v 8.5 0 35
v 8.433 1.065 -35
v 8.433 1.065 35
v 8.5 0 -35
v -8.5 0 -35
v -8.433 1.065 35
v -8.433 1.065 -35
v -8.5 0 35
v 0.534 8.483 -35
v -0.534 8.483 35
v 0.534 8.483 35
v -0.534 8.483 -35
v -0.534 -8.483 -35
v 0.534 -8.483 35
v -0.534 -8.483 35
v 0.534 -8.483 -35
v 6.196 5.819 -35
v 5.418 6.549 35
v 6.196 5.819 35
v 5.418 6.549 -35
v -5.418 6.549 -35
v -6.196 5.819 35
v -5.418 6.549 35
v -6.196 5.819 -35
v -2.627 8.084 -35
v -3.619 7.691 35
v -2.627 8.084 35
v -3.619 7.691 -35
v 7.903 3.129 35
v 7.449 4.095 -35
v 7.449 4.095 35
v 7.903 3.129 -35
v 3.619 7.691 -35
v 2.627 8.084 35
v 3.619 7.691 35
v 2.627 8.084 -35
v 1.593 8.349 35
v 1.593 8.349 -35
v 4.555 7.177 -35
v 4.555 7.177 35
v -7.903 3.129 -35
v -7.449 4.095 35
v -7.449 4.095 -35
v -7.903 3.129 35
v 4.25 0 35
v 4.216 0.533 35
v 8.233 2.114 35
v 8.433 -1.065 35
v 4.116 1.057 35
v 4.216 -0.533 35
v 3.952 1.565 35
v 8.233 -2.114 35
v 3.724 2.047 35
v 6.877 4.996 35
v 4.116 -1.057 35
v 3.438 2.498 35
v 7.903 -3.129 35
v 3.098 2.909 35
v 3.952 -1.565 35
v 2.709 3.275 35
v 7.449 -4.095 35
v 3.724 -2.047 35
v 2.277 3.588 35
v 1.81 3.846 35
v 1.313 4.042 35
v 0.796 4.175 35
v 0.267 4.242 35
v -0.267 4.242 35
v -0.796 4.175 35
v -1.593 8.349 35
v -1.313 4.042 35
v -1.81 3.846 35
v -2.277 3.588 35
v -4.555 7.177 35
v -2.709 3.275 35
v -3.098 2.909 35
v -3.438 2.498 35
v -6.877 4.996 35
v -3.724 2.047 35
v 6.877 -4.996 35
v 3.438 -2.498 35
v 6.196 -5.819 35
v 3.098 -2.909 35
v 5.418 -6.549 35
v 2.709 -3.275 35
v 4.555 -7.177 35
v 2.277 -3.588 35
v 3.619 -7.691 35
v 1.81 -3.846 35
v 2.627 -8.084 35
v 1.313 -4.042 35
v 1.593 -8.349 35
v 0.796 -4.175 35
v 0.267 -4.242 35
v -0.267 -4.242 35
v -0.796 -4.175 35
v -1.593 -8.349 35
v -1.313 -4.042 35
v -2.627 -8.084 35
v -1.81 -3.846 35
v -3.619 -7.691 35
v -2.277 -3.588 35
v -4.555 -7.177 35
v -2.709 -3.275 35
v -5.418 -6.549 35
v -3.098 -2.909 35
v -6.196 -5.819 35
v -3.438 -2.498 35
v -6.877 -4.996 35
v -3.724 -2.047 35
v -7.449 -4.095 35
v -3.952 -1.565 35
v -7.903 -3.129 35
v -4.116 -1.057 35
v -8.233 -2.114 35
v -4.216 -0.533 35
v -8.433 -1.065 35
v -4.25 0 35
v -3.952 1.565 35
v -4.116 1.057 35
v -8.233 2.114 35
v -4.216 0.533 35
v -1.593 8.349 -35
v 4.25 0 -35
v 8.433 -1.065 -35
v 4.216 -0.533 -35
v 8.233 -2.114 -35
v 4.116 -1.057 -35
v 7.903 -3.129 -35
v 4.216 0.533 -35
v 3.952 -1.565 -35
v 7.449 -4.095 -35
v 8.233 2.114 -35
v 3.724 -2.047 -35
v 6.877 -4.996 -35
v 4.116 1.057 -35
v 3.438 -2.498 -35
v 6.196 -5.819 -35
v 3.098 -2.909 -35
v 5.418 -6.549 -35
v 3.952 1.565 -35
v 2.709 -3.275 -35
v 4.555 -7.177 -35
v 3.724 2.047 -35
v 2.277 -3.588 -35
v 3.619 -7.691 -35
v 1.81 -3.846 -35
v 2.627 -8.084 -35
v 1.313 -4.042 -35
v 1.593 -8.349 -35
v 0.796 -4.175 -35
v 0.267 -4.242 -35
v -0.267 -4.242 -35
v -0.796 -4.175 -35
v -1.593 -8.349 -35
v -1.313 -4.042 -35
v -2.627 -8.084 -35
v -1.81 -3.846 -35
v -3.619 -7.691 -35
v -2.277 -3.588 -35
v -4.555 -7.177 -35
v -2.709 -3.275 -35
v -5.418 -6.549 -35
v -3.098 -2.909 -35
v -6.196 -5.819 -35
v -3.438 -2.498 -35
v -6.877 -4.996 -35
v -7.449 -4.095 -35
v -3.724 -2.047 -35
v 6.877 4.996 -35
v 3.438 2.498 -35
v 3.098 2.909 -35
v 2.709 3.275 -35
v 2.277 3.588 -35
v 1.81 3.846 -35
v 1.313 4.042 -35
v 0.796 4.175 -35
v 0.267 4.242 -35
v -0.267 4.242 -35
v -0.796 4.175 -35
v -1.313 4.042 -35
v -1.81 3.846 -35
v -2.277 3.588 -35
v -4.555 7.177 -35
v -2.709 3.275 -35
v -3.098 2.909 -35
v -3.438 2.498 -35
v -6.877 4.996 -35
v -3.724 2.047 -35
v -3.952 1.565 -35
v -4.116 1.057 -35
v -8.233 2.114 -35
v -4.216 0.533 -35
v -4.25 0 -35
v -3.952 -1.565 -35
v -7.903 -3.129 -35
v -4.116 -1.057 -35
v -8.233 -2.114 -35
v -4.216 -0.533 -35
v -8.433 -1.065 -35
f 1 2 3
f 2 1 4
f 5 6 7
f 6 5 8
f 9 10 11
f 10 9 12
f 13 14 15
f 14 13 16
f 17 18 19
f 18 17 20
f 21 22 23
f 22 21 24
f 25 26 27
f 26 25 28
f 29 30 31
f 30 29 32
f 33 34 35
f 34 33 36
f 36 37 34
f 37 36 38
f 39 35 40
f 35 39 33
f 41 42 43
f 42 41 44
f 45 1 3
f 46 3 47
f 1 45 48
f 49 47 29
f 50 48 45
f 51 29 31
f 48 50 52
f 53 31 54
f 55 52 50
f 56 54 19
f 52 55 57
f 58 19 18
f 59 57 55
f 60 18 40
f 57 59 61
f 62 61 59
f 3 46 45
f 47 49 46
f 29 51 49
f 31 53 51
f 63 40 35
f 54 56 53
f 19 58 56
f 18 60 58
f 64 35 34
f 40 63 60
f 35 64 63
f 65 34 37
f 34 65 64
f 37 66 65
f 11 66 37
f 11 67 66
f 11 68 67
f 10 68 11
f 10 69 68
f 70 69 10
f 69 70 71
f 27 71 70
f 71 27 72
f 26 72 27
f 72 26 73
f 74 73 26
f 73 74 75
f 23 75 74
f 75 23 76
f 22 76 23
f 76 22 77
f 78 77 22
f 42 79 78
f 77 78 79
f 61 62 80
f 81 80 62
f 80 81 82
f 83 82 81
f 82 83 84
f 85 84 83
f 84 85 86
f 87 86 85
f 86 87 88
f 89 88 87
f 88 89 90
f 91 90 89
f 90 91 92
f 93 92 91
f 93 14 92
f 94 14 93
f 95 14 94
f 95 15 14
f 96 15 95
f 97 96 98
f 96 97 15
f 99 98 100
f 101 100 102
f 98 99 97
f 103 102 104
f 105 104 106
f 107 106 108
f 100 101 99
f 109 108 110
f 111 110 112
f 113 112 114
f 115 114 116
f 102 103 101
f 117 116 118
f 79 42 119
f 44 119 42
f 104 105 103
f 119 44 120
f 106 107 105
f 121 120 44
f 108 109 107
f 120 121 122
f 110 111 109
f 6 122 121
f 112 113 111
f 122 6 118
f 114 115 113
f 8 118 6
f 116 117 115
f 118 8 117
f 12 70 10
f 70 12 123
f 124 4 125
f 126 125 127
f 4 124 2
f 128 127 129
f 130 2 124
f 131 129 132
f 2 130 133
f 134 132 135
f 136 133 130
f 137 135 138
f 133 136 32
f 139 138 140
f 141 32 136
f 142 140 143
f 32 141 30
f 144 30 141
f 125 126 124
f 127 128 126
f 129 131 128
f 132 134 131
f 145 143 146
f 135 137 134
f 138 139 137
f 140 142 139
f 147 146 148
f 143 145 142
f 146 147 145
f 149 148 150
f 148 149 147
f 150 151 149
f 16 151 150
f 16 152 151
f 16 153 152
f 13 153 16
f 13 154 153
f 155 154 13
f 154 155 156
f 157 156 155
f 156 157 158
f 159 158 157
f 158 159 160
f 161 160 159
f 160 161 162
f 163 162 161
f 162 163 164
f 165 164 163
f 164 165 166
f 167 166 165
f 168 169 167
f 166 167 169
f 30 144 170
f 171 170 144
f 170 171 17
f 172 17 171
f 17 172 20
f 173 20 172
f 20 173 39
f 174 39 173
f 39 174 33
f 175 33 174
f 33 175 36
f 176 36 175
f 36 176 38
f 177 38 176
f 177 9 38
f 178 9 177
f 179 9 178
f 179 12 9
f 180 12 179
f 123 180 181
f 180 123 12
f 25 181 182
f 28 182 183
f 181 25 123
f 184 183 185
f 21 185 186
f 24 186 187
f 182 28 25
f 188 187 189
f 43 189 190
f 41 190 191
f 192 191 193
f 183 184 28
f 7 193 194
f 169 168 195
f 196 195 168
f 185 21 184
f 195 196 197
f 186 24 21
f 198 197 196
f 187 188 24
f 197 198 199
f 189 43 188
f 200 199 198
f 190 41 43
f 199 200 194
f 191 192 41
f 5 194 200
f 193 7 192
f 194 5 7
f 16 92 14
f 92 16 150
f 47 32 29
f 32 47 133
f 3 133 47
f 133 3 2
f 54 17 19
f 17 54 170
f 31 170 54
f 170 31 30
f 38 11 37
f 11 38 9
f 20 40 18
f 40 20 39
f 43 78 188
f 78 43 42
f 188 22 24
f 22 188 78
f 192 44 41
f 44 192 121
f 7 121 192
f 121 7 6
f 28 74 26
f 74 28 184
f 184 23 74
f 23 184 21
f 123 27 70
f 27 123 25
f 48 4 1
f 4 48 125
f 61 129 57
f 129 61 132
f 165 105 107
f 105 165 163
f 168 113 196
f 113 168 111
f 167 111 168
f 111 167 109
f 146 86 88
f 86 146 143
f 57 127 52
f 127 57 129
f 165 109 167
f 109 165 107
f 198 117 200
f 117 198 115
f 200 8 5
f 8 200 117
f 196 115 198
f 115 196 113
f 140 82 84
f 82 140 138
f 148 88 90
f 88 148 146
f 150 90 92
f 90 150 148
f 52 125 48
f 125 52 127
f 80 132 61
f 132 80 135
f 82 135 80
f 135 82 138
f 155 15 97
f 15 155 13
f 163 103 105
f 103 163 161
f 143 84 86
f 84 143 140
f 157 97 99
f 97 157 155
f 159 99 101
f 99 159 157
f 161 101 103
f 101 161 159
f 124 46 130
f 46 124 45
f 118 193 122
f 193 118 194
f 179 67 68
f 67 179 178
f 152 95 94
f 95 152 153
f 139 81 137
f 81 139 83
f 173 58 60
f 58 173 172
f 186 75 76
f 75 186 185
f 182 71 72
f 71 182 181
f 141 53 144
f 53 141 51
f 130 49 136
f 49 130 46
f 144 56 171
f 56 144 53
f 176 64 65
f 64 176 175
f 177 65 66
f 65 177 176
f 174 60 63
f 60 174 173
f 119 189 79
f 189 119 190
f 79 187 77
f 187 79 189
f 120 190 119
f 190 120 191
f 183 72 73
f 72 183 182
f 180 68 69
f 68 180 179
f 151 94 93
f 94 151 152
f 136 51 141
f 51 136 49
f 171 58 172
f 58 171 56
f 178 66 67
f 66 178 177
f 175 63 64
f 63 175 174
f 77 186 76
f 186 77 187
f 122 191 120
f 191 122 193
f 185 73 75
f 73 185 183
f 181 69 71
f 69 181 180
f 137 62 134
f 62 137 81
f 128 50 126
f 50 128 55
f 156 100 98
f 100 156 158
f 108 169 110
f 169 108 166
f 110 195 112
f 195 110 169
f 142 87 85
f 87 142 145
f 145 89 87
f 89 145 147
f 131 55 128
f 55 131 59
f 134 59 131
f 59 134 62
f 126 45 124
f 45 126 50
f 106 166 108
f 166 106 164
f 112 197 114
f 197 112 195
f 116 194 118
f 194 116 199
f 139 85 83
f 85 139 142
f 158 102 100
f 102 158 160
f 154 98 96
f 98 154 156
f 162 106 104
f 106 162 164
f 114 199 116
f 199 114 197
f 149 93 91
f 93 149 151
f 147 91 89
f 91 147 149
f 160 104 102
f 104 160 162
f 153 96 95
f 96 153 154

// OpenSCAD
$fn = 50;


difference() {
	union() {
		translate(v = [0, 0, -35.0000000000]) {
			cylinder(h = 70, r = 8.5000000000);
		}
	}
	union() {
		translate(v = [0, 0, -100.0000000000]) {
			cylinder(h = 200, r = 4.2500000000);
		}
	}
}
